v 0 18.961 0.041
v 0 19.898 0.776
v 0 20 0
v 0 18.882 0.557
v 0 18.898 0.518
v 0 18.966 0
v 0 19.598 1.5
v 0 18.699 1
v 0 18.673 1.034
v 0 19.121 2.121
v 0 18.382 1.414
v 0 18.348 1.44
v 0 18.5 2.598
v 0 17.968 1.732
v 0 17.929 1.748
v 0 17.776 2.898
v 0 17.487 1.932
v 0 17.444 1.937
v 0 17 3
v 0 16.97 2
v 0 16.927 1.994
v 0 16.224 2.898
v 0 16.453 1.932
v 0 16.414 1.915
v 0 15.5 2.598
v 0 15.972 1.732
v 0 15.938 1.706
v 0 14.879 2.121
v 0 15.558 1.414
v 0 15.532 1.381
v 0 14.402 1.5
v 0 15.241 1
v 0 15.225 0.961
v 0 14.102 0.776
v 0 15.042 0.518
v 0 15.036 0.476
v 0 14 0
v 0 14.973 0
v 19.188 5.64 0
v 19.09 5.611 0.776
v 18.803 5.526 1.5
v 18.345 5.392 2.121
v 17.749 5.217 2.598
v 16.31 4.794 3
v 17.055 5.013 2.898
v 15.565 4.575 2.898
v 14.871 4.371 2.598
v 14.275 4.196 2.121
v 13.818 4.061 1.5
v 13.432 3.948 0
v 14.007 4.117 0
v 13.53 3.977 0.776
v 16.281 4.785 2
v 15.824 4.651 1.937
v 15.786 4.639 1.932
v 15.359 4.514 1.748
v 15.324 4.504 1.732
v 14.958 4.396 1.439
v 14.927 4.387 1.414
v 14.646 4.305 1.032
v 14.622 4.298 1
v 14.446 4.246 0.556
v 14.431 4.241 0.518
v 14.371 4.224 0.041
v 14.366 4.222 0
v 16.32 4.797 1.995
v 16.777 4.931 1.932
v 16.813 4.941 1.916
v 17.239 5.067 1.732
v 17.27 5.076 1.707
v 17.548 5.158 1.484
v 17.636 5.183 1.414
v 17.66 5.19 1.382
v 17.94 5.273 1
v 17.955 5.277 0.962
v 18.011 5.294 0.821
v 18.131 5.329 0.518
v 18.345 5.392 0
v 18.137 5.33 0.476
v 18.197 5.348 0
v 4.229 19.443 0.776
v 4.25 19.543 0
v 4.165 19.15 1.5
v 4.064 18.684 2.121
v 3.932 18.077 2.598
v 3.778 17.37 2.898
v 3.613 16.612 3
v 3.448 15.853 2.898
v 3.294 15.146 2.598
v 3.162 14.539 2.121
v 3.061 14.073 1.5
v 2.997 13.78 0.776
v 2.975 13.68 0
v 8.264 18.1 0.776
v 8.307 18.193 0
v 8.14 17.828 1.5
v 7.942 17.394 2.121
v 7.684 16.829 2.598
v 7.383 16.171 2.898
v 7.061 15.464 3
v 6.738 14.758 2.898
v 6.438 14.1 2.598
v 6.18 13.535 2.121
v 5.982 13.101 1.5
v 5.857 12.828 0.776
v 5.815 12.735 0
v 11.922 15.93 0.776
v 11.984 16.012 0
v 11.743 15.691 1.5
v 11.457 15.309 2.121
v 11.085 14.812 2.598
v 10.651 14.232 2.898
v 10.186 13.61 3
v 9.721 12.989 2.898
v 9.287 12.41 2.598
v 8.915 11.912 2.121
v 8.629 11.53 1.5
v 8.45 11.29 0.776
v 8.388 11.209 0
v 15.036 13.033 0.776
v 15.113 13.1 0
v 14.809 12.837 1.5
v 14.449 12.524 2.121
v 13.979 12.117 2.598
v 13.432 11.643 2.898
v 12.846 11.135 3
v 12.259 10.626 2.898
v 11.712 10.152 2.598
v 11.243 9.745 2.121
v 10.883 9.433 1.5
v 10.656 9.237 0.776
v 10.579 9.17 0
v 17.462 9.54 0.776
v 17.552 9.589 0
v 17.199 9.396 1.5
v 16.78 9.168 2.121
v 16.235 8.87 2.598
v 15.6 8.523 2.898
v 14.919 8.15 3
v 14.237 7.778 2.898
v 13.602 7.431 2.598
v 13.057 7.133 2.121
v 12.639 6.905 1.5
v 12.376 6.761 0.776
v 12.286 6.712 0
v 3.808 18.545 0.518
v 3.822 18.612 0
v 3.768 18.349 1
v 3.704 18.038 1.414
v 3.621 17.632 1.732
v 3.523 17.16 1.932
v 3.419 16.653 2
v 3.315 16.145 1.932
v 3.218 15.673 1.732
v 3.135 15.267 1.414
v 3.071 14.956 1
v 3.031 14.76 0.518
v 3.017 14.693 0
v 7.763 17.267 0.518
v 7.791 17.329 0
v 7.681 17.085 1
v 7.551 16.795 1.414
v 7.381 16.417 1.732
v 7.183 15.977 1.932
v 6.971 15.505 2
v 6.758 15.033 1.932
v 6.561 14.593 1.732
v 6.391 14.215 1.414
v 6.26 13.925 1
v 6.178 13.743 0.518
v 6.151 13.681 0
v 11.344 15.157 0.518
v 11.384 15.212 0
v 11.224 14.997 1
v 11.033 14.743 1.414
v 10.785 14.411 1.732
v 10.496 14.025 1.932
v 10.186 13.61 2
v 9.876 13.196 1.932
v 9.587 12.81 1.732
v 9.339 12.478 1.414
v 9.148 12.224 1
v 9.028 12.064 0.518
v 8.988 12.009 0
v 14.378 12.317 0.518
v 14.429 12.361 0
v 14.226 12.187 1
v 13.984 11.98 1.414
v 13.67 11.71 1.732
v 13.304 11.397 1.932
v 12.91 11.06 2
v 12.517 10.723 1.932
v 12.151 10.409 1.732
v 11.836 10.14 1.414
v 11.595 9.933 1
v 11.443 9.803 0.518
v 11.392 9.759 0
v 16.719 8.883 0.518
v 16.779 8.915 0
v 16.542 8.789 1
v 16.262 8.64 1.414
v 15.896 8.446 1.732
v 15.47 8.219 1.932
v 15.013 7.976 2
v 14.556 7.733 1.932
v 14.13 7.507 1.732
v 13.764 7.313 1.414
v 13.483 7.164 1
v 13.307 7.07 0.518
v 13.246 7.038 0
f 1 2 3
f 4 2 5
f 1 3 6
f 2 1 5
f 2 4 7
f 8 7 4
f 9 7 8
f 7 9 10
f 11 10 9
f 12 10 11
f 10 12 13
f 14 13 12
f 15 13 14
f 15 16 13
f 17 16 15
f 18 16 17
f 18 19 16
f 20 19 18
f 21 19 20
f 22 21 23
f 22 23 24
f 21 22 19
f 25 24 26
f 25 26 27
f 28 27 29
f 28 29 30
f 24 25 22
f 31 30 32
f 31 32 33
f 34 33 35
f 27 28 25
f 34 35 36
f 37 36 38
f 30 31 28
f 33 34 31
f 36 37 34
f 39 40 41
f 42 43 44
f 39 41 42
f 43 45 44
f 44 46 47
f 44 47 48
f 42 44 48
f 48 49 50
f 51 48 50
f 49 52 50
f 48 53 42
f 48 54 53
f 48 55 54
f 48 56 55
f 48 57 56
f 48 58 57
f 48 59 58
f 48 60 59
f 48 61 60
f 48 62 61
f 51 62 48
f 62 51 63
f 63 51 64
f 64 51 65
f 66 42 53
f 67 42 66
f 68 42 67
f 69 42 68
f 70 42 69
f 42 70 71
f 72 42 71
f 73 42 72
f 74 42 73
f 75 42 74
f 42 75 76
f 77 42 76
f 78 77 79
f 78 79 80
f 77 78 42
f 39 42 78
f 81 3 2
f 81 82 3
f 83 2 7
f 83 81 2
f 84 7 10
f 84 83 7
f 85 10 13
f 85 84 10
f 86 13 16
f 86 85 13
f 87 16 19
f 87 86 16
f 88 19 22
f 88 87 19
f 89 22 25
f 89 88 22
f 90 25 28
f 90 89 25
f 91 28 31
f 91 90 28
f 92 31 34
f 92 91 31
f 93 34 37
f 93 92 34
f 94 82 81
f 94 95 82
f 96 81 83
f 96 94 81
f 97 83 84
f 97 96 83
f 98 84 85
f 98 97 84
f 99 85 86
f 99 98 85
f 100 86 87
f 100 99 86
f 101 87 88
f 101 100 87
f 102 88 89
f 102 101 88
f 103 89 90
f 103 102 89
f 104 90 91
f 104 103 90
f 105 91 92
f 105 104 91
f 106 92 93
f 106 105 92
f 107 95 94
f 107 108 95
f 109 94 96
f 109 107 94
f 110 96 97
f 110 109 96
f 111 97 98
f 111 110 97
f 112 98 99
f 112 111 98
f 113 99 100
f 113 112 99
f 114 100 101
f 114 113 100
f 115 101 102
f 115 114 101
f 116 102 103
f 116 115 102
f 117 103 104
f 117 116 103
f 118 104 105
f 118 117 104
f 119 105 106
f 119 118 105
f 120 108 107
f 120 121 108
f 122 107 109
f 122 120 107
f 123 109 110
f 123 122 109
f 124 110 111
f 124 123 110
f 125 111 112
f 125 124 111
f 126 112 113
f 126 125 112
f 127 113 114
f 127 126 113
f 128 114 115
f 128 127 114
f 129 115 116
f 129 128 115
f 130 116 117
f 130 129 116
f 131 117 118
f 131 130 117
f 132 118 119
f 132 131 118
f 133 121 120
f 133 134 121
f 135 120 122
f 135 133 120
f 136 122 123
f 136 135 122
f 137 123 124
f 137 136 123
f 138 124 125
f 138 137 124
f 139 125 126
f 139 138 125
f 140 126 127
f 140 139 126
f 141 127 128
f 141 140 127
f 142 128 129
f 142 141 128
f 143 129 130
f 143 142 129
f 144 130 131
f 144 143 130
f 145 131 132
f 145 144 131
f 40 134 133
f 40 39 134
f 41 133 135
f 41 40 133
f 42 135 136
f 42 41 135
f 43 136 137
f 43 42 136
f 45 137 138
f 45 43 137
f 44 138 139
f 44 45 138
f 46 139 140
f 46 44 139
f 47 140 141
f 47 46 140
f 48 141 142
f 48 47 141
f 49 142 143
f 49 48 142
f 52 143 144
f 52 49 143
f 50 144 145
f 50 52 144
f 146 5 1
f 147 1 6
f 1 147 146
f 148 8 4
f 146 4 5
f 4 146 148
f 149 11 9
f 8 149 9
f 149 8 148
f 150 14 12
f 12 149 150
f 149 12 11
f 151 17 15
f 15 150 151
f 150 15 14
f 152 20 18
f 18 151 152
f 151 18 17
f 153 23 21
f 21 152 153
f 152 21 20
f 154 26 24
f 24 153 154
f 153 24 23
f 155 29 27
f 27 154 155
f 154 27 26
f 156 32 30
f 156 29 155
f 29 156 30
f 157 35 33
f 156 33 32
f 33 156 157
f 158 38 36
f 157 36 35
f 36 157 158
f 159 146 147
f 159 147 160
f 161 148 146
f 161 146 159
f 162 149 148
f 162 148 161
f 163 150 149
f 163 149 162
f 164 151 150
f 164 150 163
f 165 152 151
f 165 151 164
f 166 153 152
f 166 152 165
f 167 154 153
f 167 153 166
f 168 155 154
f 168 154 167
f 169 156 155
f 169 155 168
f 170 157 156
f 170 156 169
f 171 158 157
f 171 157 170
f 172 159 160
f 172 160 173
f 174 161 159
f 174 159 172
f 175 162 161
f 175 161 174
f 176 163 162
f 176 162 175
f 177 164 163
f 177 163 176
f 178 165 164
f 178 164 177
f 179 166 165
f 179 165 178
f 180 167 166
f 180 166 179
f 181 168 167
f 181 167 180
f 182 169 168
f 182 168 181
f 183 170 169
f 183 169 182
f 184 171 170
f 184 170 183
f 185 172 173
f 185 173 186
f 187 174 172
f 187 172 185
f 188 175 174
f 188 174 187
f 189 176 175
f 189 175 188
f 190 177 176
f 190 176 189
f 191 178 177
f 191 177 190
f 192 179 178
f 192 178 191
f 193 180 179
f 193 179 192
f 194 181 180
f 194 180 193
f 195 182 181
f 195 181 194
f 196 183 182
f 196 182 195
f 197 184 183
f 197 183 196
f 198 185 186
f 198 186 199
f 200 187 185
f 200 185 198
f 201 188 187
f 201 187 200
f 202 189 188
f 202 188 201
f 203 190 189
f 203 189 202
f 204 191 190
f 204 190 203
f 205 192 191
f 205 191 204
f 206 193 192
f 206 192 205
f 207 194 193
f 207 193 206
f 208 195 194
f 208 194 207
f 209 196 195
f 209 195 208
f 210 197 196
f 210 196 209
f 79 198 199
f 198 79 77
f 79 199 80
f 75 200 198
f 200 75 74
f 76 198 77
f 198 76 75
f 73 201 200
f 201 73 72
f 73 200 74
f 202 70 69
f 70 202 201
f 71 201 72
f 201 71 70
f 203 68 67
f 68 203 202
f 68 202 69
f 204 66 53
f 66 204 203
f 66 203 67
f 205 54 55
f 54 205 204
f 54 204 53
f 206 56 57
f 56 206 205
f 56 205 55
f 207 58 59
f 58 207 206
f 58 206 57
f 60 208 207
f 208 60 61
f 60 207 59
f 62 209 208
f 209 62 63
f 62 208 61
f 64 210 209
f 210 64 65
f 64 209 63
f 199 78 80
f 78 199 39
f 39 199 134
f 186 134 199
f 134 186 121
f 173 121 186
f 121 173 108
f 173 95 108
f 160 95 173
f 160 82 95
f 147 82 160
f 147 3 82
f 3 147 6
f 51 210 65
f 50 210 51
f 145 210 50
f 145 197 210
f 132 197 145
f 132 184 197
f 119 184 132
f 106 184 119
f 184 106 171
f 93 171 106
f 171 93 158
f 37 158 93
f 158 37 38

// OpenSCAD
// file: ../build_environments.scad
// build_environments.scad: modules to build level sections
//

module pool(diameter=10.0, wall_height=2.0, step_width=3.0, connections=[])
{
    difference() {
        union() {
        difference() {
            cylinder(h=0.5,r1=diameter+step_width,r2=diameter+step_width,$fn=48);
            translate([0,0,-0.1])
                cylinder(h=0.7,r1=diameter,r2=diameter,$fn=48);
        }
        difference() {
            cylinder(h=wall_height,r1=diameter+step_width+1.0,r2=diameter+step_width+1.0,$fn=48);
            translate([0,0,-0.1])
                cylinder(h=wall_height+0.2,r1=diameter+step_width,r2=diameter+step_width,$fn=48);
        }
        }
    
        for (c = connections)
        {
            rotate([0,90,0]) {
                angle = atan2(c[1],c[0]);
                rotate([-angle,0,0]) {
                    cylinder(h=diameter+5.0,r1=c[2],r2=c[2],$fn=48);
                }
            }
        }
    }
}

module straight(length=10.0, width=2.0, dy1=0.0, dy2=0.0, dz=0.0)
{
    dims = [0, 0, 0, 0, 0, (dz/length)];
    matrix = [
        [ 1, dims[0], dims[1], 0 ],
        [ dims[2], 1, dims[4], 0 ],
        [ dims[5], dims[3], 1, 0 ],
        [ 0, 0, 0, 1 ]
    ];
    multmatrix(matrix)
    difference() {
        translate([dy1,0,0])
        union() {
            rotate([0,90,0]) {
                difference() {
                    cylinder(h=(length-dy1-dy2),r1=width+1.0,r2=width+1.0,$fn=24);
                    translate([0,0,-0.1])
                        cylinder(h=(length-dy1-dy2+0.2),r1=width,r2=width,$fn=24);
                }
                difference() {
                    cylinder(h=1.0,r1=width+2.0,r2=width+2.0,$fn=24);
                    translate([0,0,-0.1])
                        cylinder(h=1.2,r1=width,r2=width,$fn=24);
                }
                translate([0,0,(length-dy1-dy2)-1.0]) {
                    difference() {
                        cylinder(h=1.0,r1=width+2.0,r2=width+2.0,$fn=24);
                        translate([0,0,-0.1])
                            cylinder(h=1.2,r1=width,r2=width,$fn=24);
                    }
                }
            }
        }
        translate([0,0,-(2*width+4.0)/2])
            cube([3*length,3*length,2*width+4.0],center=true);
    }
}

module curve(p0=[0,0], center=[0,0], dir=1, angle=0.0, width=2.0)
{
    radius = sqrt((p0[0]-center[0])*(p0[0]-center[0]) + (p0[1]-center[1])*(p0[1]-center[1]));
    if (dir == 0) {
        difference() {
            rotate([0,0,-90])
            difference() {
                rotate_extrude(angle = angle, convexity = 10, $fn=32)
                    translate([radius, 0, 0])
                        circle(r = width+1.0,$fn=24);
                rotate([0,0,-1.0])
                    rotate_extrude(angle = angle+2.0, convexity = 10, $fn=32)
                        translate([radius, 0, 0])
                            circle(r = width,$fn=24);
            }
            translate([0,0,-(2*width+4.0)/2])
                cube([5*radius,5*radius,2*width+4.0],center=true);
        }
    }
    else {
        difference() {
            rotate([0,0,90])
            difference() {
                rotate_extrude(angle = -angle, convexity = 10, $fn=32)
                    translate([radius, 0, 0])
                        circle(r = width+1.0,$fn=24);
                rotate([0,0,1.0])
                    rotate_extrude(angle = -angle-2.0, convexity = 10, $fn=32)
                        translate([radius, 0, 0])
                            circle(r = width,$fn=24);
            }
            translate([0,0,-(2*width+4.0)/2])
                cube([5*radius,5*radius,2*width+4.0],center=true);
        }
    }

}

// test pool
//pool(diameter=12.0000, wall_height=3.0000, step_width=3.0000, connections=[[0.0000,-26.0000,2.0000], [23.6074,0.0000,2.0000]]);

// test straight, slope
//straight(length=26.0000, width=2.0000, dy1=11.8322, dy2=6.7082, dz=0.0000);
//straight(length=29.1549, width=12.0000, dy1=0.0000, dy2=0.0000, dz=-15.0000);

// test curve
//curve(p0=[23.6074, 0.0000], center=[23.6074, 5.0000], dir=0, angle=60.1011, width=2.0000);
//curve(p0=[33.6426, 12.4219], center=[37.9771, 9.9295], dir=1, angle=120.4627, width=2.0000);
// main file
use <../build_environments.scad>;
curve(p0=[-95.5557, -72.0958], center=[-79.3933, -66.8254], dir=1, angle=73.6215, width=2.0000);
